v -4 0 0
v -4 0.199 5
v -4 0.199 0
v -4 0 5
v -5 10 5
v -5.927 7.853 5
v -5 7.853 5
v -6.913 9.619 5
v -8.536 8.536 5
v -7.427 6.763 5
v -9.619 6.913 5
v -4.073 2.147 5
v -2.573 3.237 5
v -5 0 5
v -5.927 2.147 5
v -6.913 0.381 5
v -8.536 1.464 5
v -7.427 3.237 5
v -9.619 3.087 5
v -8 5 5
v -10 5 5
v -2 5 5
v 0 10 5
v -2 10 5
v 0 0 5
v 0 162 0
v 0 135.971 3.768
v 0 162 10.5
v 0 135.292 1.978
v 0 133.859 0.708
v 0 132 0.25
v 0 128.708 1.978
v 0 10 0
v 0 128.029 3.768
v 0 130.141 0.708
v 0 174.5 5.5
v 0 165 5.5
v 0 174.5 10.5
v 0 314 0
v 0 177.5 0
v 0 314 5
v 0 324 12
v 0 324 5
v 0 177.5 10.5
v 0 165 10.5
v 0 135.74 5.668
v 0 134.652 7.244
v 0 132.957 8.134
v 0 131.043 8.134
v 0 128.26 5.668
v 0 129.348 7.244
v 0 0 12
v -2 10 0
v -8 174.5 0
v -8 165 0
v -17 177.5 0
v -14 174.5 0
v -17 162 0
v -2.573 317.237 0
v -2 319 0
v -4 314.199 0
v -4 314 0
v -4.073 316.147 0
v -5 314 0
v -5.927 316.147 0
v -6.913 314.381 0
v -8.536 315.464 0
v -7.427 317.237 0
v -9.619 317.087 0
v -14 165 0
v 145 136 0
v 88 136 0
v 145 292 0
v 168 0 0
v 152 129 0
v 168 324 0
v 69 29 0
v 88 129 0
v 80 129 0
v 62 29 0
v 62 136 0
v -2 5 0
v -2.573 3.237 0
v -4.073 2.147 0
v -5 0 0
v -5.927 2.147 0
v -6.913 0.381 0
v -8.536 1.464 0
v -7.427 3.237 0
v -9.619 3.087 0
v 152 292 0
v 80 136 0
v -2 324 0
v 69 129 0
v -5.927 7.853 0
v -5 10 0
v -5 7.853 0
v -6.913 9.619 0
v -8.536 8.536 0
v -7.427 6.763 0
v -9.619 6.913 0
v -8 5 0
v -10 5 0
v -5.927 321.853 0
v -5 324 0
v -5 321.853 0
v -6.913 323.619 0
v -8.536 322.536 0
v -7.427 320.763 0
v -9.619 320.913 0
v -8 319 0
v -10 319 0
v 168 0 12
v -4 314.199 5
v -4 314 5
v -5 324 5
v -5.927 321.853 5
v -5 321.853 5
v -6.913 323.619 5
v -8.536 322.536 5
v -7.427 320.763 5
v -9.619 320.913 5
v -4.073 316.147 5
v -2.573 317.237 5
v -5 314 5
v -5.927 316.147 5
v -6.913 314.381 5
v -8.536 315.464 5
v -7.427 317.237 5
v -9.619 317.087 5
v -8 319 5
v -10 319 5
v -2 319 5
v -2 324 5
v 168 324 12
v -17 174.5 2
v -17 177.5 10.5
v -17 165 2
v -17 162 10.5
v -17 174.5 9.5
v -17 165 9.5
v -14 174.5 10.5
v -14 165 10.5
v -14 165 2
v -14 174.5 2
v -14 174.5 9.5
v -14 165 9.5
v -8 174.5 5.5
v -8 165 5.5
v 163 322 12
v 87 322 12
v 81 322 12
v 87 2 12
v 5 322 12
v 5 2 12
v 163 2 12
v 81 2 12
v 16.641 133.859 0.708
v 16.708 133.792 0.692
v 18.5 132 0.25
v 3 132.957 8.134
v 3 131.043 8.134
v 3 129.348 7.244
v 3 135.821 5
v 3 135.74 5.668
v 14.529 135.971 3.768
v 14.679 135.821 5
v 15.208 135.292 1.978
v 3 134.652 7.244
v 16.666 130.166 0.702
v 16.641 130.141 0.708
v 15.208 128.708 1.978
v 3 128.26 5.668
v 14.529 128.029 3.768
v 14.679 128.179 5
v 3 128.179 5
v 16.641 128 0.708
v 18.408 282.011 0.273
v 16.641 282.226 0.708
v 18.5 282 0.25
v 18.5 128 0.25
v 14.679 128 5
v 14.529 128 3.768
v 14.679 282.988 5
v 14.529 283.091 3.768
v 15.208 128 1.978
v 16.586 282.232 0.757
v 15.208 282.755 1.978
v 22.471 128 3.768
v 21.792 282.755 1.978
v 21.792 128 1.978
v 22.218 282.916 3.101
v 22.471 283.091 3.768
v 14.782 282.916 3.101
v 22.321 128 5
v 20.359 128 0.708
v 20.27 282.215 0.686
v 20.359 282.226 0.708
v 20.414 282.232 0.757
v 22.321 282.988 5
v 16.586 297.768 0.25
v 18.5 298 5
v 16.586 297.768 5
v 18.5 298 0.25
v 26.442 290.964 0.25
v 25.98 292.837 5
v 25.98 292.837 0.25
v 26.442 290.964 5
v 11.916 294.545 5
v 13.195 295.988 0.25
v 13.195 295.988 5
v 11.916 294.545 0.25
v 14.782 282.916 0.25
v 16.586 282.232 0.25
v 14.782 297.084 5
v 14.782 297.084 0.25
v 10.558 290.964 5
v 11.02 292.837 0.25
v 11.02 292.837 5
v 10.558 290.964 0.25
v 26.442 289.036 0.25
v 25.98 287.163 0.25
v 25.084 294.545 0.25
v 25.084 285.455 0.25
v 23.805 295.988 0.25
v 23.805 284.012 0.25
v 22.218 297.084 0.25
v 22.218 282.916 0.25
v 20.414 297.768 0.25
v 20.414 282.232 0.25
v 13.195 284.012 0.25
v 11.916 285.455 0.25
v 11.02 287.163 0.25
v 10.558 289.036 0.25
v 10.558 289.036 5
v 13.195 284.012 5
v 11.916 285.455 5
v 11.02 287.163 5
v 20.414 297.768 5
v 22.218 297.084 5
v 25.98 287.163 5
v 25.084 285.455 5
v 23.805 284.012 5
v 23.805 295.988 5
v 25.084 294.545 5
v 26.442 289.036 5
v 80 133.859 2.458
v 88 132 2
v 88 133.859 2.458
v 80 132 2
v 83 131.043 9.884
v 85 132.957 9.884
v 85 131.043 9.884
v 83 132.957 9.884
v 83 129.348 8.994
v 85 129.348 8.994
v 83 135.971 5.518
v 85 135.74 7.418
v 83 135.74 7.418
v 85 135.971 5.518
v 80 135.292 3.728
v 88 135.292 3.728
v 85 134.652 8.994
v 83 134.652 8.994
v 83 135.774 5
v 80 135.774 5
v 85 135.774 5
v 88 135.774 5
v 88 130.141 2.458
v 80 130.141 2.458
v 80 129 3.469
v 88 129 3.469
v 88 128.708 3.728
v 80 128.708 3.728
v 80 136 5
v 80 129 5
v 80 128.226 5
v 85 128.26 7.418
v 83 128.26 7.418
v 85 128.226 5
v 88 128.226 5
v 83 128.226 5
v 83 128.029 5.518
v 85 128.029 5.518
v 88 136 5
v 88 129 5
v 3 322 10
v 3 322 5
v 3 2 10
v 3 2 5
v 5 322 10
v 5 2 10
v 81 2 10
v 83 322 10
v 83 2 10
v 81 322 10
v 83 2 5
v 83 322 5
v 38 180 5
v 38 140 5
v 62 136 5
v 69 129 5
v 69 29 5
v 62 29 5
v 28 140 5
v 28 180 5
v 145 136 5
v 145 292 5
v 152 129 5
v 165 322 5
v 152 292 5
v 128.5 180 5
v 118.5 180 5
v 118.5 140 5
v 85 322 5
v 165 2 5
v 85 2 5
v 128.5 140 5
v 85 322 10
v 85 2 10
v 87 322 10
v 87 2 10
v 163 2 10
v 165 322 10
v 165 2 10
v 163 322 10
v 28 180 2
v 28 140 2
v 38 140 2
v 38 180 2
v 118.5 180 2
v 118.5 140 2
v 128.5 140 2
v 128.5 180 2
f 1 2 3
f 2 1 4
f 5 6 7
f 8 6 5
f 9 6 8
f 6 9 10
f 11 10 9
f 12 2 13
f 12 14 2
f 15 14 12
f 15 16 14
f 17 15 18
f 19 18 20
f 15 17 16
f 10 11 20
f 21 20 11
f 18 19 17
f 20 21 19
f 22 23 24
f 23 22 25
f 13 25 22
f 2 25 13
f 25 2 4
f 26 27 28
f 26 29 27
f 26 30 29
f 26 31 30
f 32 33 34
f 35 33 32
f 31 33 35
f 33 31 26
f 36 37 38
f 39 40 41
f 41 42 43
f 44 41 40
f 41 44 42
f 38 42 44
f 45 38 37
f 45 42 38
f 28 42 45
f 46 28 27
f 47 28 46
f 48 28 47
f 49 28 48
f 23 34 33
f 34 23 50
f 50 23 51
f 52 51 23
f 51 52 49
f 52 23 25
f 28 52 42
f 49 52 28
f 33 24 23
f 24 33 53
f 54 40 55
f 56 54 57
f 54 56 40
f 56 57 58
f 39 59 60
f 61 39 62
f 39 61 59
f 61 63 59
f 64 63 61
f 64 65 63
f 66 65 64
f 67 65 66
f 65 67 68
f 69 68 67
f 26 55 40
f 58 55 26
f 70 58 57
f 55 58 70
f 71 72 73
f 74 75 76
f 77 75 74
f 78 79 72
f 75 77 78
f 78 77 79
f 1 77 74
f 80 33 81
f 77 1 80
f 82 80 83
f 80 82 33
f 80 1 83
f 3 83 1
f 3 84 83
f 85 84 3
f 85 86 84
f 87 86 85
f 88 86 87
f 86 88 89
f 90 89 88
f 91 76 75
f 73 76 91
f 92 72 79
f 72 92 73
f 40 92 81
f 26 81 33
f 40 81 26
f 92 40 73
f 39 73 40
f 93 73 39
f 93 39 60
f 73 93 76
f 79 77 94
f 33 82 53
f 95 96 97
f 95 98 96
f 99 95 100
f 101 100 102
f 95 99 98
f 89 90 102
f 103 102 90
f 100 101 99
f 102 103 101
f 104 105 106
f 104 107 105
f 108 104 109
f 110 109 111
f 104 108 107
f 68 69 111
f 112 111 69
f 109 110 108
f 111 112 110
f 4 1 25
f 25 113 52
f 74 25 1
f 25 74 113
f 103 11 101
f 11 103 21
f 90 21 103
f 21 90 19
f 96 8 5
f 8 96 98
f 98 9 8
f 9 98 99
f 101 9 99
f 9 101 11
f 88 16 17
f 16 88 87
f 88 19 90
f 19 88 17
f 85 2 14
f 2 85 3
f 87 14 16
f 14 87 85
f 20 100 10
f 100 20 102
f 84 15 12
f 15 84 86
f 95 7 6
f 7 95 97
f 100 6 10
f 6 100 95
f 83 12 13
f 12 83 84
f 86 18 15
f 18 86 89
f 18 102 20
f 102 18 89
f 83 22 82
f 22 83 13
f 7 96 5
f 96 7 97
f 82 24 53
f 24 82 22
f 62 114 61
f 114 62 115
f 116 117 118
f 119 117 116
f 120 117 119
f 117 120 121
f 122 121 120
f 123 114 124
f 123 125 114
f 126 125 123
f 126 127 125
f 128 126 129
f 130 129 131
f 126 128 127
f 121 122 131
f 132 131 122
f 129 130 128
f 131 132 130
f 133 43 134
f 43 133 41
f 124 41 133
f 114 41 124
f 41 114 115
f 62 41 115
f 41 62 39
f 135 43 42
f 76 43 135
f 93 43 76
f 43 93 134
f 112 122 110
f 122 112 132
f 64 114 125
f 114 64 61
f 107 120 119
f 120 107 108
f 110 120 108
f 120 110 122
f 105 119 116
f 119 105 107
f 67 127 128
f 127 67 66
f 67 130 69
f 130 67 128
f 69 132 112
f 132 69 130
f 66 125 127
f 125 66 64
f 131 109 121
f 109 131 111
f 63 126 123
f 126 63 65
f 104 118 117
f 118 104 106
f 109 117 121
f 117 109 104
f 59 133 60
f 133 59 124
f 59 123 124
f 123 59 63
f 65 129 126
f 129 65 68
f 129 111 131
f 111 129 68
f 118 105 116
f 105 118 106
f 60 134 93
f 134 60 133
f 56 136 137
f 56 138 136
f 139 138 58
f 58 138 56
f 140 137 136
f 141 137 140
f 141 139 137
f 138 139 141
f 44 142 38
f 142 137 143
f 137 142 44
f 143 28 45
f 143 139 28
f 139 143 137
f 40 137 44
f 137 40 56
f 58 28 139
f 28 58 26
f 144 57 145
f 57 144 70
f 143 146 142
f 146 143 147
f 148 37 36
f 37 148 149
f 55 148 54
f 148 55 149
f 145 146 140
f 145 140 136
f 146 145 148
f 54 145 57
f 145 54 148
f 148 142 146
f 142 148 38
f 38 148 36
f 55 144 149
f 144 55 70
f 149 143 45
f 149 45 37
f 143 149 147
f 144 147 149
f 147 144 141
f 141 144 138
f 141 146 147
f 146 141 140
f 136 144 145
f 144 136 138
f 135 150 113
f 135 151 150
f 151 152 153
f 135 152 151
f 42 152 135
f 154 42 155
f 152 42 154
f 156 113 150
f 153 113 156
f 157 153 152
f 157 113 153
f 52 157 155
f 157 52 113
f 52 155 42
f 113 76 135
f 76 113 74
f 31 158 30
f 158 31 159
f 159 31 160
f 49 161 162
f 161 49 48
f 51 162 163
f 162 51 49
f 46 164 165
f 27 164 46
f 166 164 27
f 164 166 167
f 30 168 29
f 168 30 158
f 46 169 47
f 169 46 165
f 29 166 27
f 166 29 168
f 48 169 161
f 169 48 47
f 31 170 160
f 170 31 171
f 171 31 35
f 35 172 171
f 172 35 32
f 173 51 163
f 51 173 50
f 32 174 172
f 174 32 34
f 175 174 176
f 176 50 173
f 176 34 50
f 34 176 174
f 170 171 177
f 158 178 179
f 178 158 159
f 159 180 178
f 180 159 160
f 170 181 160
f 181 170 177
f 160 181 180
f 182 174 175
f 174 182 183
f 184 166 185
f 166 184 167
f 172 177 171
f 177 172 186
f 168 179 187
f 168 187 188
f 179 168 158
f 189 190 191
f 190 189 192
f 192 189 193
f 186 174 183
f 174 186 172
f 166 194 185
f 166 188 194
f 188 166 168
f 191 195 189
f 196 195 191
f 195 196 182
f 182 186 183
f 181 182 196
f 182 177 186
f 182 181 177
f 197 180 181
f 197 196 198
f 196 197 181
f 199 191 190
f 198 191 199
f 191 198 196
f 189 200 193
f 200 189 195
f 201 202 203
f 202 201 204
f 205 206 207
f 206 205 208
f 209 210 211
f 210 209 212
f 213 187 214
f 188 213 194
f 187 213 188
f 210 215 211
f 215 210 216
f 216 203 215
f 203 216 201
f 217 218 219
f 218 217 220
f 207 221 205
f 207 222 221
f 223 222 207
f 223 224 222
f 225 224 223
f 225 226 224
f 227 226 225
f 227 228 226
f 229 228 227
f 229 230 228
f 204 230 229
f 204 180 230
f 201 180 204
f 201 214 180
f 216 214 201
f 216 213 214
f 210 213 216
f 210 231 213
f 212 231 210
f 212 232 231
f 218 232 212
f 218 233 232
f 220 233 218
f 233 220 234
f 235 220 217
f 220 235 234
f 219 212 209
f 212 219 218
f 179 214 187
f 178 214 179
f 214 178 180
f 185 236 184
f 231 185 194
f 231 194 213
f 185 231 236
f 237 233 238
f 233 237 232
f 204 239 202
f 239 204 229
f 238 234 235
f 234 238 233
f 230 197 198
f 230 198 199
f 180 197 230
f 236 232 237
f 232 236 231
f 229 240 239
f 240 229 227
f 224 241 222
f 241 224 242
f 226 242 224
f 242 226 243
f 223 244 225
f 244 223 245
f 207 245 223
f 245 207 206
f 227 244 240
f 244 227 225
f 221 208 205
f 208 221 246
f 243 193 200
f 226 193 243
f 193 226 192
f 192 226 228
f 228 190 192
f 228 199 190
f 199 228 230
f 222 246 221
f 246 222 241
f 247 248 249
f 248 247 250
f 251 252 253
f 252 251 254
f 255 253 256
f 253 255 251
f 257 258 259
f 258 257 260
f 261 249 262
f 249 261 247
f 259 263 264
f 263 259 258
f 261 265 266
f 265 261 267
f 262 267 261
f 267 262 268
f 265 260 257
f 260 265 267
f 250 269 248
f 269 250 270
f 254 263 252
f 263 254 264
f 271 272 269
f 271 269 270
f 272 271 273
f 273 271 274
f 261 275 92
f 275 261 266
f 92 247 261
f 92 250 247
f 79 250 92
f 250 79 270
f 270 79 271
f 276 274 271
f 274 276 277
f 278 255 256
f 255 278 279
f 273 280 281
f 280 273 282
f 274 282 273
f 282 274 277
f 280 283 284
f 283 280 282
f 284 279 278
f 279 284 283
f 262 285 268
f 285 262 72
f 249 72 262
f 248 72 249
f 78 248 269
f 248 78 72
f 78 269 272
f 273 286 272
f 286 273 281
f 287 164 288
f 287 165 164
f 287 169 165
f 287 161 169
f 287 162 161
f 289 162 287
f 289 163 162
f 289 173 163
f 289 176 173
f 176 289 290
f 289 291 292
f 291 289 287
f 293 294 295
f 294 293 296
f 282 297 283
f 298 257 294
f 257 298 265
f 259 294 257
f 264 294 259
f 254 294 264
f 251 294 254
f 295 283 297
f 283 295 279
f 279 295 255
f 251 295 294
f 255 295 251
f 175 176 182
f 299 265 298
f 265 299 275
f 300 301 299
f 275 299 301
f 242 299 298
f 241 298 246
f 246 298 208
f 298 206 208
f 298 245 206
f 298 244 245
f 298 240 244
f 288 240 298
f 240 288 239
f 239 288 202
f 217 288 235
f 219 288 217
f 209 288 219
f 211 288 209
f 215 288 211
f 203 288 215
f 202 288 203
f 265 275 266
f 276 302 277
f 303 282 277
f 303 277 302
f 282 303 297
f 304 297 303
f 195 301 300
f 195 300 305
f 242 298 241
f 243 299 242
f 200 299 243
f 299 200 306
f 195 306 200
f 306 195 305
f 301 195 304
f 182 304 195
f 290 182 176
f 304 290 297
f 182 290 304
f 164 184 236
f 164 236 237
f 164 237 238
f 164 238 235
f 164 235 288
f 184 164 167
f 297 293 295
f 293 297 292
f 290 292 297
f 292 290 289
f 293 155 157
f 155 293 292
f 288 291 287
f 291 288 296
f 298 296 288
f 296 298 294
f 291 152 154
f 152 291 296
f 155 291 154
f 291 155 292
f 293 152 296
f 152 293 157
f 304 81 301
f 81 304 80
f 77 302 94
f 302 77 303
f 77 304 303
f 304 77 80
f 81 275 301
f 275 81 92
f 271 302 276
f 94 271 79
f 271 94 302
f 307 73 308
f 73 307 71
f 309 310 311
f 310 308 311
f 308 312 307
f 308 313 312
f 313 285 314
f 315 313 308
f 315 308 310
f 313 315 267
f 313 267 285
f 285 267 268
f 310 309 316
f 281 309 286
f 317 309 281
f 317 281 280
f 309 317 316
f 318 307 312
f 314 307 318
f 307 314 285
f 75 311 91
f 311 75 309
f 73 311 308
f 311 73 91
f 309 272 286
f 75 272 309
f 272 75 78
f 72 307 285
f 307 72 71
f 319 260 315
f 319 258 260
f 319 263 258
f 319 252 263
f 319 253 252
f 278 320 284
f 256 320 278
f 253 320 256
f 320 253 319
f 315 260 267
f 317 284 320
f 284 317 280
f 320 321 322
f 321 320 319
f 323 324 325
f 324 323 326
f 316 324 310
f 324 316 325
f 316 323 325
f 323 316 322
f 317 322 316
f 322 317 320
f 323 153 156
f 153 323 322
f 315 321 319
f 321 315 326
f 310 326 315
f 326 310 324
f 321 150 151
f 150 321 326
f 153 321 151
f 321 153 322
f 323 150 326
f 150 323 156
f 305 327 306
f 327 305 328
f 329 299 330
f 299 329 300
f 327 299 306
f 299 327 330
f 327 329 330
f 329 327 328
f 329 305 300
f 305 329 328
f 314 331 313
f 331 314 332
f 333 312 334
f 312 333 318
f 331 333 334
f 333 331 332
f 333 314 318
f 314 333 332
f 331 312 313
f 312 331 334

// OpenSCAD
// file: defs.scad
pid = 32;
ch = 85;
td = 59;
n = 5;
h = 80;
w = 320;
m = 2;
t1 = 3;
t2 = 2;
t3 = 5;
sch = 5.5;
s = 7;
d = 12;
cp = 16.5;
cc = 9.5;
r = 6;
o = 30;
p = 65;
r2 = 17;
q = 6;
b = 4.5;
x = 57;
y = 84;
z = 30;
g = 20;
e = 6;
l1=40;
l2=10;
p2=12.5; // Vertical offset for wire slots
channelo = 30;  // Offset for cable in
conn = 8;  // Diameter of the channel for inter-panel connectors
// main file
include <defs.scad>

union() {
    difference() {
        /* This makes 2 hook shaped holders at the edges of the frame top.
        */
        union() {
            translate([-1*(t1+t2/2), 0, 0]) cube([t1+t2/2, 2*t1+2*t2,t3]);
            translate([-1*(t1+t2), t1+t2, 0]) cylinder(d=2*t1+2*t2, t3);
        }
        translate([-1*(t1+t2), t1+t2, 0]) cylinder(d=2*t1, t3);
        translate([-1*(t2+t1), t1+t2, 0]) cube([t1,t1+t2,t3]);
    }
    difference() {
        union() {
            translate([-1*(t1+t2/2), w-2*t1, 0]) cube([t1+t2/2, 2*t1+2*t2,t3]);
            translate([-1*(t1+t2), w-t1+t2, 0]) cylinder(d=2*t1+2*t2, t3);
        }
        translate([-1*(t1+t2), w-t1+t2, 0]) cylinder(d=2*t1, t3);
        translate([-1*(t2+t1), w-t1+t2, 0]) cube([t1,t1+t2,t3]);
    }
    /* This makes the centered holder for a camera with a lip and slots for the ribbon cable at the bottom and the top edge.
    */
    translate([-1*(d+t2+t1),(w+2*t2)/2,0]) {
        difference() {
            cube([d+t2+t1, cc+2*t1, n+sch]);
            translate([t1, t1, 0]) cube([e, cc, sch]);  // the bottom slot
            translate([t1, t1, sch]) cube([d+t1, cc, n]); // the cavity
            translate([0, t1, t2]) cube([t1, cc, n+sch-t2-t2/2]);  // the topside slot for the ribbon
        }
    }
 
    /* This makes the frame that holds 2 panels with slight lips on the topmost and bottommost horizontal edges and slots for cables out the back.
    There are 2 channels to be used for braces after the model has been cut into 2 sections for printing.
    */
    difference() {
        cube([2*h+t2+2*t1, w+2*t2, n+t3+t2]);
    
        // This makes a hole for the power and data cable into the top panel.
        translate([0,(w+2*t2)/2-channelo,t2+b/2]) {
            rotate([90, 90, 90]) cylinder(h=t2+p2+conn/2, d=conn);
        }
        
        // This makes a channel for the input power and data to the top panel input
        translate([t2+p2+conn/2, (w+2*t2)/2-channelo-conn/2, t2+b/2]) rotate([90, 90, 180]) cylinder(h=w-((w+2*t2)/2-channelo-conn/2)-z, d=conn);
        translate([t2+p2+conn/2, w-z , t2+b/2-(conn/2)]) rotate([0, 0, 90]) cylinder(h=w-((w+2*t2)/2-channelo-conn/2)-z, d=conn*2);
        
        // This makes a hole for the cables between the two panels.
        translate([h,(w+2*t2)/2-channelo,t2+conn/2]) {
            rotate([90, 90, 90]) cylinder(h=t2+t1*2, d=conn);
        }

        translate([t1, t2, t3]) cube([h, w, n]);
        
        translate([t1+m, t2, t3]) cube([h-t2-m, w, n+t2]);
 
        // This makes the two panel wire slots
        // top
        translate([h-t2-s/2-p2, t2+z-t1, 0]) cube([s, w-2*(z-t1)-((w+2*t2)/2), t3]);
        translate([h-t2-s/2-p2,  t2-conn/2+z-t1+(w-2*(z-t1)-((w+2*t2)/2)), 0]) cube([h-(h-t2-s/2-p2), s , t3]);

        // bottom
        translate([t1+h+h-t2-s/2-p2,  t2-conn/2+z-t1+(w-2*(z-t1)-((w+2*t2)/2)), 0]) cube([s, w+conn/2-z-(z-t1+(w-2*(z-t1)-((w+2*t2)/2))) , t3]); 
        
        translate([h+t2+t1*2, t2-conn/2+z-t1+(w-2*(z-t1)-((w+2*t2)/2)), 0]) cube([h-t2-s/2-p2, s , t3]);


        translate([t1+h+t2, t2, t3]) cube([h, w, n]);
        
        translate([t1+h+t2+m, t2, t3]) cube([h-2*m, w, n+t2]);
        // These are the channels for braces
        translate([t1+((h-g)/2)-(l2/2), (w/2)-(l1/2),t2]) cube([l2, l1, t3-t2]);
       translate([t1+h+t2+s/2+g+l2, (w/2)-(l1/2),t2]) cube([l2, l1, t3-t2]);
    }
}
